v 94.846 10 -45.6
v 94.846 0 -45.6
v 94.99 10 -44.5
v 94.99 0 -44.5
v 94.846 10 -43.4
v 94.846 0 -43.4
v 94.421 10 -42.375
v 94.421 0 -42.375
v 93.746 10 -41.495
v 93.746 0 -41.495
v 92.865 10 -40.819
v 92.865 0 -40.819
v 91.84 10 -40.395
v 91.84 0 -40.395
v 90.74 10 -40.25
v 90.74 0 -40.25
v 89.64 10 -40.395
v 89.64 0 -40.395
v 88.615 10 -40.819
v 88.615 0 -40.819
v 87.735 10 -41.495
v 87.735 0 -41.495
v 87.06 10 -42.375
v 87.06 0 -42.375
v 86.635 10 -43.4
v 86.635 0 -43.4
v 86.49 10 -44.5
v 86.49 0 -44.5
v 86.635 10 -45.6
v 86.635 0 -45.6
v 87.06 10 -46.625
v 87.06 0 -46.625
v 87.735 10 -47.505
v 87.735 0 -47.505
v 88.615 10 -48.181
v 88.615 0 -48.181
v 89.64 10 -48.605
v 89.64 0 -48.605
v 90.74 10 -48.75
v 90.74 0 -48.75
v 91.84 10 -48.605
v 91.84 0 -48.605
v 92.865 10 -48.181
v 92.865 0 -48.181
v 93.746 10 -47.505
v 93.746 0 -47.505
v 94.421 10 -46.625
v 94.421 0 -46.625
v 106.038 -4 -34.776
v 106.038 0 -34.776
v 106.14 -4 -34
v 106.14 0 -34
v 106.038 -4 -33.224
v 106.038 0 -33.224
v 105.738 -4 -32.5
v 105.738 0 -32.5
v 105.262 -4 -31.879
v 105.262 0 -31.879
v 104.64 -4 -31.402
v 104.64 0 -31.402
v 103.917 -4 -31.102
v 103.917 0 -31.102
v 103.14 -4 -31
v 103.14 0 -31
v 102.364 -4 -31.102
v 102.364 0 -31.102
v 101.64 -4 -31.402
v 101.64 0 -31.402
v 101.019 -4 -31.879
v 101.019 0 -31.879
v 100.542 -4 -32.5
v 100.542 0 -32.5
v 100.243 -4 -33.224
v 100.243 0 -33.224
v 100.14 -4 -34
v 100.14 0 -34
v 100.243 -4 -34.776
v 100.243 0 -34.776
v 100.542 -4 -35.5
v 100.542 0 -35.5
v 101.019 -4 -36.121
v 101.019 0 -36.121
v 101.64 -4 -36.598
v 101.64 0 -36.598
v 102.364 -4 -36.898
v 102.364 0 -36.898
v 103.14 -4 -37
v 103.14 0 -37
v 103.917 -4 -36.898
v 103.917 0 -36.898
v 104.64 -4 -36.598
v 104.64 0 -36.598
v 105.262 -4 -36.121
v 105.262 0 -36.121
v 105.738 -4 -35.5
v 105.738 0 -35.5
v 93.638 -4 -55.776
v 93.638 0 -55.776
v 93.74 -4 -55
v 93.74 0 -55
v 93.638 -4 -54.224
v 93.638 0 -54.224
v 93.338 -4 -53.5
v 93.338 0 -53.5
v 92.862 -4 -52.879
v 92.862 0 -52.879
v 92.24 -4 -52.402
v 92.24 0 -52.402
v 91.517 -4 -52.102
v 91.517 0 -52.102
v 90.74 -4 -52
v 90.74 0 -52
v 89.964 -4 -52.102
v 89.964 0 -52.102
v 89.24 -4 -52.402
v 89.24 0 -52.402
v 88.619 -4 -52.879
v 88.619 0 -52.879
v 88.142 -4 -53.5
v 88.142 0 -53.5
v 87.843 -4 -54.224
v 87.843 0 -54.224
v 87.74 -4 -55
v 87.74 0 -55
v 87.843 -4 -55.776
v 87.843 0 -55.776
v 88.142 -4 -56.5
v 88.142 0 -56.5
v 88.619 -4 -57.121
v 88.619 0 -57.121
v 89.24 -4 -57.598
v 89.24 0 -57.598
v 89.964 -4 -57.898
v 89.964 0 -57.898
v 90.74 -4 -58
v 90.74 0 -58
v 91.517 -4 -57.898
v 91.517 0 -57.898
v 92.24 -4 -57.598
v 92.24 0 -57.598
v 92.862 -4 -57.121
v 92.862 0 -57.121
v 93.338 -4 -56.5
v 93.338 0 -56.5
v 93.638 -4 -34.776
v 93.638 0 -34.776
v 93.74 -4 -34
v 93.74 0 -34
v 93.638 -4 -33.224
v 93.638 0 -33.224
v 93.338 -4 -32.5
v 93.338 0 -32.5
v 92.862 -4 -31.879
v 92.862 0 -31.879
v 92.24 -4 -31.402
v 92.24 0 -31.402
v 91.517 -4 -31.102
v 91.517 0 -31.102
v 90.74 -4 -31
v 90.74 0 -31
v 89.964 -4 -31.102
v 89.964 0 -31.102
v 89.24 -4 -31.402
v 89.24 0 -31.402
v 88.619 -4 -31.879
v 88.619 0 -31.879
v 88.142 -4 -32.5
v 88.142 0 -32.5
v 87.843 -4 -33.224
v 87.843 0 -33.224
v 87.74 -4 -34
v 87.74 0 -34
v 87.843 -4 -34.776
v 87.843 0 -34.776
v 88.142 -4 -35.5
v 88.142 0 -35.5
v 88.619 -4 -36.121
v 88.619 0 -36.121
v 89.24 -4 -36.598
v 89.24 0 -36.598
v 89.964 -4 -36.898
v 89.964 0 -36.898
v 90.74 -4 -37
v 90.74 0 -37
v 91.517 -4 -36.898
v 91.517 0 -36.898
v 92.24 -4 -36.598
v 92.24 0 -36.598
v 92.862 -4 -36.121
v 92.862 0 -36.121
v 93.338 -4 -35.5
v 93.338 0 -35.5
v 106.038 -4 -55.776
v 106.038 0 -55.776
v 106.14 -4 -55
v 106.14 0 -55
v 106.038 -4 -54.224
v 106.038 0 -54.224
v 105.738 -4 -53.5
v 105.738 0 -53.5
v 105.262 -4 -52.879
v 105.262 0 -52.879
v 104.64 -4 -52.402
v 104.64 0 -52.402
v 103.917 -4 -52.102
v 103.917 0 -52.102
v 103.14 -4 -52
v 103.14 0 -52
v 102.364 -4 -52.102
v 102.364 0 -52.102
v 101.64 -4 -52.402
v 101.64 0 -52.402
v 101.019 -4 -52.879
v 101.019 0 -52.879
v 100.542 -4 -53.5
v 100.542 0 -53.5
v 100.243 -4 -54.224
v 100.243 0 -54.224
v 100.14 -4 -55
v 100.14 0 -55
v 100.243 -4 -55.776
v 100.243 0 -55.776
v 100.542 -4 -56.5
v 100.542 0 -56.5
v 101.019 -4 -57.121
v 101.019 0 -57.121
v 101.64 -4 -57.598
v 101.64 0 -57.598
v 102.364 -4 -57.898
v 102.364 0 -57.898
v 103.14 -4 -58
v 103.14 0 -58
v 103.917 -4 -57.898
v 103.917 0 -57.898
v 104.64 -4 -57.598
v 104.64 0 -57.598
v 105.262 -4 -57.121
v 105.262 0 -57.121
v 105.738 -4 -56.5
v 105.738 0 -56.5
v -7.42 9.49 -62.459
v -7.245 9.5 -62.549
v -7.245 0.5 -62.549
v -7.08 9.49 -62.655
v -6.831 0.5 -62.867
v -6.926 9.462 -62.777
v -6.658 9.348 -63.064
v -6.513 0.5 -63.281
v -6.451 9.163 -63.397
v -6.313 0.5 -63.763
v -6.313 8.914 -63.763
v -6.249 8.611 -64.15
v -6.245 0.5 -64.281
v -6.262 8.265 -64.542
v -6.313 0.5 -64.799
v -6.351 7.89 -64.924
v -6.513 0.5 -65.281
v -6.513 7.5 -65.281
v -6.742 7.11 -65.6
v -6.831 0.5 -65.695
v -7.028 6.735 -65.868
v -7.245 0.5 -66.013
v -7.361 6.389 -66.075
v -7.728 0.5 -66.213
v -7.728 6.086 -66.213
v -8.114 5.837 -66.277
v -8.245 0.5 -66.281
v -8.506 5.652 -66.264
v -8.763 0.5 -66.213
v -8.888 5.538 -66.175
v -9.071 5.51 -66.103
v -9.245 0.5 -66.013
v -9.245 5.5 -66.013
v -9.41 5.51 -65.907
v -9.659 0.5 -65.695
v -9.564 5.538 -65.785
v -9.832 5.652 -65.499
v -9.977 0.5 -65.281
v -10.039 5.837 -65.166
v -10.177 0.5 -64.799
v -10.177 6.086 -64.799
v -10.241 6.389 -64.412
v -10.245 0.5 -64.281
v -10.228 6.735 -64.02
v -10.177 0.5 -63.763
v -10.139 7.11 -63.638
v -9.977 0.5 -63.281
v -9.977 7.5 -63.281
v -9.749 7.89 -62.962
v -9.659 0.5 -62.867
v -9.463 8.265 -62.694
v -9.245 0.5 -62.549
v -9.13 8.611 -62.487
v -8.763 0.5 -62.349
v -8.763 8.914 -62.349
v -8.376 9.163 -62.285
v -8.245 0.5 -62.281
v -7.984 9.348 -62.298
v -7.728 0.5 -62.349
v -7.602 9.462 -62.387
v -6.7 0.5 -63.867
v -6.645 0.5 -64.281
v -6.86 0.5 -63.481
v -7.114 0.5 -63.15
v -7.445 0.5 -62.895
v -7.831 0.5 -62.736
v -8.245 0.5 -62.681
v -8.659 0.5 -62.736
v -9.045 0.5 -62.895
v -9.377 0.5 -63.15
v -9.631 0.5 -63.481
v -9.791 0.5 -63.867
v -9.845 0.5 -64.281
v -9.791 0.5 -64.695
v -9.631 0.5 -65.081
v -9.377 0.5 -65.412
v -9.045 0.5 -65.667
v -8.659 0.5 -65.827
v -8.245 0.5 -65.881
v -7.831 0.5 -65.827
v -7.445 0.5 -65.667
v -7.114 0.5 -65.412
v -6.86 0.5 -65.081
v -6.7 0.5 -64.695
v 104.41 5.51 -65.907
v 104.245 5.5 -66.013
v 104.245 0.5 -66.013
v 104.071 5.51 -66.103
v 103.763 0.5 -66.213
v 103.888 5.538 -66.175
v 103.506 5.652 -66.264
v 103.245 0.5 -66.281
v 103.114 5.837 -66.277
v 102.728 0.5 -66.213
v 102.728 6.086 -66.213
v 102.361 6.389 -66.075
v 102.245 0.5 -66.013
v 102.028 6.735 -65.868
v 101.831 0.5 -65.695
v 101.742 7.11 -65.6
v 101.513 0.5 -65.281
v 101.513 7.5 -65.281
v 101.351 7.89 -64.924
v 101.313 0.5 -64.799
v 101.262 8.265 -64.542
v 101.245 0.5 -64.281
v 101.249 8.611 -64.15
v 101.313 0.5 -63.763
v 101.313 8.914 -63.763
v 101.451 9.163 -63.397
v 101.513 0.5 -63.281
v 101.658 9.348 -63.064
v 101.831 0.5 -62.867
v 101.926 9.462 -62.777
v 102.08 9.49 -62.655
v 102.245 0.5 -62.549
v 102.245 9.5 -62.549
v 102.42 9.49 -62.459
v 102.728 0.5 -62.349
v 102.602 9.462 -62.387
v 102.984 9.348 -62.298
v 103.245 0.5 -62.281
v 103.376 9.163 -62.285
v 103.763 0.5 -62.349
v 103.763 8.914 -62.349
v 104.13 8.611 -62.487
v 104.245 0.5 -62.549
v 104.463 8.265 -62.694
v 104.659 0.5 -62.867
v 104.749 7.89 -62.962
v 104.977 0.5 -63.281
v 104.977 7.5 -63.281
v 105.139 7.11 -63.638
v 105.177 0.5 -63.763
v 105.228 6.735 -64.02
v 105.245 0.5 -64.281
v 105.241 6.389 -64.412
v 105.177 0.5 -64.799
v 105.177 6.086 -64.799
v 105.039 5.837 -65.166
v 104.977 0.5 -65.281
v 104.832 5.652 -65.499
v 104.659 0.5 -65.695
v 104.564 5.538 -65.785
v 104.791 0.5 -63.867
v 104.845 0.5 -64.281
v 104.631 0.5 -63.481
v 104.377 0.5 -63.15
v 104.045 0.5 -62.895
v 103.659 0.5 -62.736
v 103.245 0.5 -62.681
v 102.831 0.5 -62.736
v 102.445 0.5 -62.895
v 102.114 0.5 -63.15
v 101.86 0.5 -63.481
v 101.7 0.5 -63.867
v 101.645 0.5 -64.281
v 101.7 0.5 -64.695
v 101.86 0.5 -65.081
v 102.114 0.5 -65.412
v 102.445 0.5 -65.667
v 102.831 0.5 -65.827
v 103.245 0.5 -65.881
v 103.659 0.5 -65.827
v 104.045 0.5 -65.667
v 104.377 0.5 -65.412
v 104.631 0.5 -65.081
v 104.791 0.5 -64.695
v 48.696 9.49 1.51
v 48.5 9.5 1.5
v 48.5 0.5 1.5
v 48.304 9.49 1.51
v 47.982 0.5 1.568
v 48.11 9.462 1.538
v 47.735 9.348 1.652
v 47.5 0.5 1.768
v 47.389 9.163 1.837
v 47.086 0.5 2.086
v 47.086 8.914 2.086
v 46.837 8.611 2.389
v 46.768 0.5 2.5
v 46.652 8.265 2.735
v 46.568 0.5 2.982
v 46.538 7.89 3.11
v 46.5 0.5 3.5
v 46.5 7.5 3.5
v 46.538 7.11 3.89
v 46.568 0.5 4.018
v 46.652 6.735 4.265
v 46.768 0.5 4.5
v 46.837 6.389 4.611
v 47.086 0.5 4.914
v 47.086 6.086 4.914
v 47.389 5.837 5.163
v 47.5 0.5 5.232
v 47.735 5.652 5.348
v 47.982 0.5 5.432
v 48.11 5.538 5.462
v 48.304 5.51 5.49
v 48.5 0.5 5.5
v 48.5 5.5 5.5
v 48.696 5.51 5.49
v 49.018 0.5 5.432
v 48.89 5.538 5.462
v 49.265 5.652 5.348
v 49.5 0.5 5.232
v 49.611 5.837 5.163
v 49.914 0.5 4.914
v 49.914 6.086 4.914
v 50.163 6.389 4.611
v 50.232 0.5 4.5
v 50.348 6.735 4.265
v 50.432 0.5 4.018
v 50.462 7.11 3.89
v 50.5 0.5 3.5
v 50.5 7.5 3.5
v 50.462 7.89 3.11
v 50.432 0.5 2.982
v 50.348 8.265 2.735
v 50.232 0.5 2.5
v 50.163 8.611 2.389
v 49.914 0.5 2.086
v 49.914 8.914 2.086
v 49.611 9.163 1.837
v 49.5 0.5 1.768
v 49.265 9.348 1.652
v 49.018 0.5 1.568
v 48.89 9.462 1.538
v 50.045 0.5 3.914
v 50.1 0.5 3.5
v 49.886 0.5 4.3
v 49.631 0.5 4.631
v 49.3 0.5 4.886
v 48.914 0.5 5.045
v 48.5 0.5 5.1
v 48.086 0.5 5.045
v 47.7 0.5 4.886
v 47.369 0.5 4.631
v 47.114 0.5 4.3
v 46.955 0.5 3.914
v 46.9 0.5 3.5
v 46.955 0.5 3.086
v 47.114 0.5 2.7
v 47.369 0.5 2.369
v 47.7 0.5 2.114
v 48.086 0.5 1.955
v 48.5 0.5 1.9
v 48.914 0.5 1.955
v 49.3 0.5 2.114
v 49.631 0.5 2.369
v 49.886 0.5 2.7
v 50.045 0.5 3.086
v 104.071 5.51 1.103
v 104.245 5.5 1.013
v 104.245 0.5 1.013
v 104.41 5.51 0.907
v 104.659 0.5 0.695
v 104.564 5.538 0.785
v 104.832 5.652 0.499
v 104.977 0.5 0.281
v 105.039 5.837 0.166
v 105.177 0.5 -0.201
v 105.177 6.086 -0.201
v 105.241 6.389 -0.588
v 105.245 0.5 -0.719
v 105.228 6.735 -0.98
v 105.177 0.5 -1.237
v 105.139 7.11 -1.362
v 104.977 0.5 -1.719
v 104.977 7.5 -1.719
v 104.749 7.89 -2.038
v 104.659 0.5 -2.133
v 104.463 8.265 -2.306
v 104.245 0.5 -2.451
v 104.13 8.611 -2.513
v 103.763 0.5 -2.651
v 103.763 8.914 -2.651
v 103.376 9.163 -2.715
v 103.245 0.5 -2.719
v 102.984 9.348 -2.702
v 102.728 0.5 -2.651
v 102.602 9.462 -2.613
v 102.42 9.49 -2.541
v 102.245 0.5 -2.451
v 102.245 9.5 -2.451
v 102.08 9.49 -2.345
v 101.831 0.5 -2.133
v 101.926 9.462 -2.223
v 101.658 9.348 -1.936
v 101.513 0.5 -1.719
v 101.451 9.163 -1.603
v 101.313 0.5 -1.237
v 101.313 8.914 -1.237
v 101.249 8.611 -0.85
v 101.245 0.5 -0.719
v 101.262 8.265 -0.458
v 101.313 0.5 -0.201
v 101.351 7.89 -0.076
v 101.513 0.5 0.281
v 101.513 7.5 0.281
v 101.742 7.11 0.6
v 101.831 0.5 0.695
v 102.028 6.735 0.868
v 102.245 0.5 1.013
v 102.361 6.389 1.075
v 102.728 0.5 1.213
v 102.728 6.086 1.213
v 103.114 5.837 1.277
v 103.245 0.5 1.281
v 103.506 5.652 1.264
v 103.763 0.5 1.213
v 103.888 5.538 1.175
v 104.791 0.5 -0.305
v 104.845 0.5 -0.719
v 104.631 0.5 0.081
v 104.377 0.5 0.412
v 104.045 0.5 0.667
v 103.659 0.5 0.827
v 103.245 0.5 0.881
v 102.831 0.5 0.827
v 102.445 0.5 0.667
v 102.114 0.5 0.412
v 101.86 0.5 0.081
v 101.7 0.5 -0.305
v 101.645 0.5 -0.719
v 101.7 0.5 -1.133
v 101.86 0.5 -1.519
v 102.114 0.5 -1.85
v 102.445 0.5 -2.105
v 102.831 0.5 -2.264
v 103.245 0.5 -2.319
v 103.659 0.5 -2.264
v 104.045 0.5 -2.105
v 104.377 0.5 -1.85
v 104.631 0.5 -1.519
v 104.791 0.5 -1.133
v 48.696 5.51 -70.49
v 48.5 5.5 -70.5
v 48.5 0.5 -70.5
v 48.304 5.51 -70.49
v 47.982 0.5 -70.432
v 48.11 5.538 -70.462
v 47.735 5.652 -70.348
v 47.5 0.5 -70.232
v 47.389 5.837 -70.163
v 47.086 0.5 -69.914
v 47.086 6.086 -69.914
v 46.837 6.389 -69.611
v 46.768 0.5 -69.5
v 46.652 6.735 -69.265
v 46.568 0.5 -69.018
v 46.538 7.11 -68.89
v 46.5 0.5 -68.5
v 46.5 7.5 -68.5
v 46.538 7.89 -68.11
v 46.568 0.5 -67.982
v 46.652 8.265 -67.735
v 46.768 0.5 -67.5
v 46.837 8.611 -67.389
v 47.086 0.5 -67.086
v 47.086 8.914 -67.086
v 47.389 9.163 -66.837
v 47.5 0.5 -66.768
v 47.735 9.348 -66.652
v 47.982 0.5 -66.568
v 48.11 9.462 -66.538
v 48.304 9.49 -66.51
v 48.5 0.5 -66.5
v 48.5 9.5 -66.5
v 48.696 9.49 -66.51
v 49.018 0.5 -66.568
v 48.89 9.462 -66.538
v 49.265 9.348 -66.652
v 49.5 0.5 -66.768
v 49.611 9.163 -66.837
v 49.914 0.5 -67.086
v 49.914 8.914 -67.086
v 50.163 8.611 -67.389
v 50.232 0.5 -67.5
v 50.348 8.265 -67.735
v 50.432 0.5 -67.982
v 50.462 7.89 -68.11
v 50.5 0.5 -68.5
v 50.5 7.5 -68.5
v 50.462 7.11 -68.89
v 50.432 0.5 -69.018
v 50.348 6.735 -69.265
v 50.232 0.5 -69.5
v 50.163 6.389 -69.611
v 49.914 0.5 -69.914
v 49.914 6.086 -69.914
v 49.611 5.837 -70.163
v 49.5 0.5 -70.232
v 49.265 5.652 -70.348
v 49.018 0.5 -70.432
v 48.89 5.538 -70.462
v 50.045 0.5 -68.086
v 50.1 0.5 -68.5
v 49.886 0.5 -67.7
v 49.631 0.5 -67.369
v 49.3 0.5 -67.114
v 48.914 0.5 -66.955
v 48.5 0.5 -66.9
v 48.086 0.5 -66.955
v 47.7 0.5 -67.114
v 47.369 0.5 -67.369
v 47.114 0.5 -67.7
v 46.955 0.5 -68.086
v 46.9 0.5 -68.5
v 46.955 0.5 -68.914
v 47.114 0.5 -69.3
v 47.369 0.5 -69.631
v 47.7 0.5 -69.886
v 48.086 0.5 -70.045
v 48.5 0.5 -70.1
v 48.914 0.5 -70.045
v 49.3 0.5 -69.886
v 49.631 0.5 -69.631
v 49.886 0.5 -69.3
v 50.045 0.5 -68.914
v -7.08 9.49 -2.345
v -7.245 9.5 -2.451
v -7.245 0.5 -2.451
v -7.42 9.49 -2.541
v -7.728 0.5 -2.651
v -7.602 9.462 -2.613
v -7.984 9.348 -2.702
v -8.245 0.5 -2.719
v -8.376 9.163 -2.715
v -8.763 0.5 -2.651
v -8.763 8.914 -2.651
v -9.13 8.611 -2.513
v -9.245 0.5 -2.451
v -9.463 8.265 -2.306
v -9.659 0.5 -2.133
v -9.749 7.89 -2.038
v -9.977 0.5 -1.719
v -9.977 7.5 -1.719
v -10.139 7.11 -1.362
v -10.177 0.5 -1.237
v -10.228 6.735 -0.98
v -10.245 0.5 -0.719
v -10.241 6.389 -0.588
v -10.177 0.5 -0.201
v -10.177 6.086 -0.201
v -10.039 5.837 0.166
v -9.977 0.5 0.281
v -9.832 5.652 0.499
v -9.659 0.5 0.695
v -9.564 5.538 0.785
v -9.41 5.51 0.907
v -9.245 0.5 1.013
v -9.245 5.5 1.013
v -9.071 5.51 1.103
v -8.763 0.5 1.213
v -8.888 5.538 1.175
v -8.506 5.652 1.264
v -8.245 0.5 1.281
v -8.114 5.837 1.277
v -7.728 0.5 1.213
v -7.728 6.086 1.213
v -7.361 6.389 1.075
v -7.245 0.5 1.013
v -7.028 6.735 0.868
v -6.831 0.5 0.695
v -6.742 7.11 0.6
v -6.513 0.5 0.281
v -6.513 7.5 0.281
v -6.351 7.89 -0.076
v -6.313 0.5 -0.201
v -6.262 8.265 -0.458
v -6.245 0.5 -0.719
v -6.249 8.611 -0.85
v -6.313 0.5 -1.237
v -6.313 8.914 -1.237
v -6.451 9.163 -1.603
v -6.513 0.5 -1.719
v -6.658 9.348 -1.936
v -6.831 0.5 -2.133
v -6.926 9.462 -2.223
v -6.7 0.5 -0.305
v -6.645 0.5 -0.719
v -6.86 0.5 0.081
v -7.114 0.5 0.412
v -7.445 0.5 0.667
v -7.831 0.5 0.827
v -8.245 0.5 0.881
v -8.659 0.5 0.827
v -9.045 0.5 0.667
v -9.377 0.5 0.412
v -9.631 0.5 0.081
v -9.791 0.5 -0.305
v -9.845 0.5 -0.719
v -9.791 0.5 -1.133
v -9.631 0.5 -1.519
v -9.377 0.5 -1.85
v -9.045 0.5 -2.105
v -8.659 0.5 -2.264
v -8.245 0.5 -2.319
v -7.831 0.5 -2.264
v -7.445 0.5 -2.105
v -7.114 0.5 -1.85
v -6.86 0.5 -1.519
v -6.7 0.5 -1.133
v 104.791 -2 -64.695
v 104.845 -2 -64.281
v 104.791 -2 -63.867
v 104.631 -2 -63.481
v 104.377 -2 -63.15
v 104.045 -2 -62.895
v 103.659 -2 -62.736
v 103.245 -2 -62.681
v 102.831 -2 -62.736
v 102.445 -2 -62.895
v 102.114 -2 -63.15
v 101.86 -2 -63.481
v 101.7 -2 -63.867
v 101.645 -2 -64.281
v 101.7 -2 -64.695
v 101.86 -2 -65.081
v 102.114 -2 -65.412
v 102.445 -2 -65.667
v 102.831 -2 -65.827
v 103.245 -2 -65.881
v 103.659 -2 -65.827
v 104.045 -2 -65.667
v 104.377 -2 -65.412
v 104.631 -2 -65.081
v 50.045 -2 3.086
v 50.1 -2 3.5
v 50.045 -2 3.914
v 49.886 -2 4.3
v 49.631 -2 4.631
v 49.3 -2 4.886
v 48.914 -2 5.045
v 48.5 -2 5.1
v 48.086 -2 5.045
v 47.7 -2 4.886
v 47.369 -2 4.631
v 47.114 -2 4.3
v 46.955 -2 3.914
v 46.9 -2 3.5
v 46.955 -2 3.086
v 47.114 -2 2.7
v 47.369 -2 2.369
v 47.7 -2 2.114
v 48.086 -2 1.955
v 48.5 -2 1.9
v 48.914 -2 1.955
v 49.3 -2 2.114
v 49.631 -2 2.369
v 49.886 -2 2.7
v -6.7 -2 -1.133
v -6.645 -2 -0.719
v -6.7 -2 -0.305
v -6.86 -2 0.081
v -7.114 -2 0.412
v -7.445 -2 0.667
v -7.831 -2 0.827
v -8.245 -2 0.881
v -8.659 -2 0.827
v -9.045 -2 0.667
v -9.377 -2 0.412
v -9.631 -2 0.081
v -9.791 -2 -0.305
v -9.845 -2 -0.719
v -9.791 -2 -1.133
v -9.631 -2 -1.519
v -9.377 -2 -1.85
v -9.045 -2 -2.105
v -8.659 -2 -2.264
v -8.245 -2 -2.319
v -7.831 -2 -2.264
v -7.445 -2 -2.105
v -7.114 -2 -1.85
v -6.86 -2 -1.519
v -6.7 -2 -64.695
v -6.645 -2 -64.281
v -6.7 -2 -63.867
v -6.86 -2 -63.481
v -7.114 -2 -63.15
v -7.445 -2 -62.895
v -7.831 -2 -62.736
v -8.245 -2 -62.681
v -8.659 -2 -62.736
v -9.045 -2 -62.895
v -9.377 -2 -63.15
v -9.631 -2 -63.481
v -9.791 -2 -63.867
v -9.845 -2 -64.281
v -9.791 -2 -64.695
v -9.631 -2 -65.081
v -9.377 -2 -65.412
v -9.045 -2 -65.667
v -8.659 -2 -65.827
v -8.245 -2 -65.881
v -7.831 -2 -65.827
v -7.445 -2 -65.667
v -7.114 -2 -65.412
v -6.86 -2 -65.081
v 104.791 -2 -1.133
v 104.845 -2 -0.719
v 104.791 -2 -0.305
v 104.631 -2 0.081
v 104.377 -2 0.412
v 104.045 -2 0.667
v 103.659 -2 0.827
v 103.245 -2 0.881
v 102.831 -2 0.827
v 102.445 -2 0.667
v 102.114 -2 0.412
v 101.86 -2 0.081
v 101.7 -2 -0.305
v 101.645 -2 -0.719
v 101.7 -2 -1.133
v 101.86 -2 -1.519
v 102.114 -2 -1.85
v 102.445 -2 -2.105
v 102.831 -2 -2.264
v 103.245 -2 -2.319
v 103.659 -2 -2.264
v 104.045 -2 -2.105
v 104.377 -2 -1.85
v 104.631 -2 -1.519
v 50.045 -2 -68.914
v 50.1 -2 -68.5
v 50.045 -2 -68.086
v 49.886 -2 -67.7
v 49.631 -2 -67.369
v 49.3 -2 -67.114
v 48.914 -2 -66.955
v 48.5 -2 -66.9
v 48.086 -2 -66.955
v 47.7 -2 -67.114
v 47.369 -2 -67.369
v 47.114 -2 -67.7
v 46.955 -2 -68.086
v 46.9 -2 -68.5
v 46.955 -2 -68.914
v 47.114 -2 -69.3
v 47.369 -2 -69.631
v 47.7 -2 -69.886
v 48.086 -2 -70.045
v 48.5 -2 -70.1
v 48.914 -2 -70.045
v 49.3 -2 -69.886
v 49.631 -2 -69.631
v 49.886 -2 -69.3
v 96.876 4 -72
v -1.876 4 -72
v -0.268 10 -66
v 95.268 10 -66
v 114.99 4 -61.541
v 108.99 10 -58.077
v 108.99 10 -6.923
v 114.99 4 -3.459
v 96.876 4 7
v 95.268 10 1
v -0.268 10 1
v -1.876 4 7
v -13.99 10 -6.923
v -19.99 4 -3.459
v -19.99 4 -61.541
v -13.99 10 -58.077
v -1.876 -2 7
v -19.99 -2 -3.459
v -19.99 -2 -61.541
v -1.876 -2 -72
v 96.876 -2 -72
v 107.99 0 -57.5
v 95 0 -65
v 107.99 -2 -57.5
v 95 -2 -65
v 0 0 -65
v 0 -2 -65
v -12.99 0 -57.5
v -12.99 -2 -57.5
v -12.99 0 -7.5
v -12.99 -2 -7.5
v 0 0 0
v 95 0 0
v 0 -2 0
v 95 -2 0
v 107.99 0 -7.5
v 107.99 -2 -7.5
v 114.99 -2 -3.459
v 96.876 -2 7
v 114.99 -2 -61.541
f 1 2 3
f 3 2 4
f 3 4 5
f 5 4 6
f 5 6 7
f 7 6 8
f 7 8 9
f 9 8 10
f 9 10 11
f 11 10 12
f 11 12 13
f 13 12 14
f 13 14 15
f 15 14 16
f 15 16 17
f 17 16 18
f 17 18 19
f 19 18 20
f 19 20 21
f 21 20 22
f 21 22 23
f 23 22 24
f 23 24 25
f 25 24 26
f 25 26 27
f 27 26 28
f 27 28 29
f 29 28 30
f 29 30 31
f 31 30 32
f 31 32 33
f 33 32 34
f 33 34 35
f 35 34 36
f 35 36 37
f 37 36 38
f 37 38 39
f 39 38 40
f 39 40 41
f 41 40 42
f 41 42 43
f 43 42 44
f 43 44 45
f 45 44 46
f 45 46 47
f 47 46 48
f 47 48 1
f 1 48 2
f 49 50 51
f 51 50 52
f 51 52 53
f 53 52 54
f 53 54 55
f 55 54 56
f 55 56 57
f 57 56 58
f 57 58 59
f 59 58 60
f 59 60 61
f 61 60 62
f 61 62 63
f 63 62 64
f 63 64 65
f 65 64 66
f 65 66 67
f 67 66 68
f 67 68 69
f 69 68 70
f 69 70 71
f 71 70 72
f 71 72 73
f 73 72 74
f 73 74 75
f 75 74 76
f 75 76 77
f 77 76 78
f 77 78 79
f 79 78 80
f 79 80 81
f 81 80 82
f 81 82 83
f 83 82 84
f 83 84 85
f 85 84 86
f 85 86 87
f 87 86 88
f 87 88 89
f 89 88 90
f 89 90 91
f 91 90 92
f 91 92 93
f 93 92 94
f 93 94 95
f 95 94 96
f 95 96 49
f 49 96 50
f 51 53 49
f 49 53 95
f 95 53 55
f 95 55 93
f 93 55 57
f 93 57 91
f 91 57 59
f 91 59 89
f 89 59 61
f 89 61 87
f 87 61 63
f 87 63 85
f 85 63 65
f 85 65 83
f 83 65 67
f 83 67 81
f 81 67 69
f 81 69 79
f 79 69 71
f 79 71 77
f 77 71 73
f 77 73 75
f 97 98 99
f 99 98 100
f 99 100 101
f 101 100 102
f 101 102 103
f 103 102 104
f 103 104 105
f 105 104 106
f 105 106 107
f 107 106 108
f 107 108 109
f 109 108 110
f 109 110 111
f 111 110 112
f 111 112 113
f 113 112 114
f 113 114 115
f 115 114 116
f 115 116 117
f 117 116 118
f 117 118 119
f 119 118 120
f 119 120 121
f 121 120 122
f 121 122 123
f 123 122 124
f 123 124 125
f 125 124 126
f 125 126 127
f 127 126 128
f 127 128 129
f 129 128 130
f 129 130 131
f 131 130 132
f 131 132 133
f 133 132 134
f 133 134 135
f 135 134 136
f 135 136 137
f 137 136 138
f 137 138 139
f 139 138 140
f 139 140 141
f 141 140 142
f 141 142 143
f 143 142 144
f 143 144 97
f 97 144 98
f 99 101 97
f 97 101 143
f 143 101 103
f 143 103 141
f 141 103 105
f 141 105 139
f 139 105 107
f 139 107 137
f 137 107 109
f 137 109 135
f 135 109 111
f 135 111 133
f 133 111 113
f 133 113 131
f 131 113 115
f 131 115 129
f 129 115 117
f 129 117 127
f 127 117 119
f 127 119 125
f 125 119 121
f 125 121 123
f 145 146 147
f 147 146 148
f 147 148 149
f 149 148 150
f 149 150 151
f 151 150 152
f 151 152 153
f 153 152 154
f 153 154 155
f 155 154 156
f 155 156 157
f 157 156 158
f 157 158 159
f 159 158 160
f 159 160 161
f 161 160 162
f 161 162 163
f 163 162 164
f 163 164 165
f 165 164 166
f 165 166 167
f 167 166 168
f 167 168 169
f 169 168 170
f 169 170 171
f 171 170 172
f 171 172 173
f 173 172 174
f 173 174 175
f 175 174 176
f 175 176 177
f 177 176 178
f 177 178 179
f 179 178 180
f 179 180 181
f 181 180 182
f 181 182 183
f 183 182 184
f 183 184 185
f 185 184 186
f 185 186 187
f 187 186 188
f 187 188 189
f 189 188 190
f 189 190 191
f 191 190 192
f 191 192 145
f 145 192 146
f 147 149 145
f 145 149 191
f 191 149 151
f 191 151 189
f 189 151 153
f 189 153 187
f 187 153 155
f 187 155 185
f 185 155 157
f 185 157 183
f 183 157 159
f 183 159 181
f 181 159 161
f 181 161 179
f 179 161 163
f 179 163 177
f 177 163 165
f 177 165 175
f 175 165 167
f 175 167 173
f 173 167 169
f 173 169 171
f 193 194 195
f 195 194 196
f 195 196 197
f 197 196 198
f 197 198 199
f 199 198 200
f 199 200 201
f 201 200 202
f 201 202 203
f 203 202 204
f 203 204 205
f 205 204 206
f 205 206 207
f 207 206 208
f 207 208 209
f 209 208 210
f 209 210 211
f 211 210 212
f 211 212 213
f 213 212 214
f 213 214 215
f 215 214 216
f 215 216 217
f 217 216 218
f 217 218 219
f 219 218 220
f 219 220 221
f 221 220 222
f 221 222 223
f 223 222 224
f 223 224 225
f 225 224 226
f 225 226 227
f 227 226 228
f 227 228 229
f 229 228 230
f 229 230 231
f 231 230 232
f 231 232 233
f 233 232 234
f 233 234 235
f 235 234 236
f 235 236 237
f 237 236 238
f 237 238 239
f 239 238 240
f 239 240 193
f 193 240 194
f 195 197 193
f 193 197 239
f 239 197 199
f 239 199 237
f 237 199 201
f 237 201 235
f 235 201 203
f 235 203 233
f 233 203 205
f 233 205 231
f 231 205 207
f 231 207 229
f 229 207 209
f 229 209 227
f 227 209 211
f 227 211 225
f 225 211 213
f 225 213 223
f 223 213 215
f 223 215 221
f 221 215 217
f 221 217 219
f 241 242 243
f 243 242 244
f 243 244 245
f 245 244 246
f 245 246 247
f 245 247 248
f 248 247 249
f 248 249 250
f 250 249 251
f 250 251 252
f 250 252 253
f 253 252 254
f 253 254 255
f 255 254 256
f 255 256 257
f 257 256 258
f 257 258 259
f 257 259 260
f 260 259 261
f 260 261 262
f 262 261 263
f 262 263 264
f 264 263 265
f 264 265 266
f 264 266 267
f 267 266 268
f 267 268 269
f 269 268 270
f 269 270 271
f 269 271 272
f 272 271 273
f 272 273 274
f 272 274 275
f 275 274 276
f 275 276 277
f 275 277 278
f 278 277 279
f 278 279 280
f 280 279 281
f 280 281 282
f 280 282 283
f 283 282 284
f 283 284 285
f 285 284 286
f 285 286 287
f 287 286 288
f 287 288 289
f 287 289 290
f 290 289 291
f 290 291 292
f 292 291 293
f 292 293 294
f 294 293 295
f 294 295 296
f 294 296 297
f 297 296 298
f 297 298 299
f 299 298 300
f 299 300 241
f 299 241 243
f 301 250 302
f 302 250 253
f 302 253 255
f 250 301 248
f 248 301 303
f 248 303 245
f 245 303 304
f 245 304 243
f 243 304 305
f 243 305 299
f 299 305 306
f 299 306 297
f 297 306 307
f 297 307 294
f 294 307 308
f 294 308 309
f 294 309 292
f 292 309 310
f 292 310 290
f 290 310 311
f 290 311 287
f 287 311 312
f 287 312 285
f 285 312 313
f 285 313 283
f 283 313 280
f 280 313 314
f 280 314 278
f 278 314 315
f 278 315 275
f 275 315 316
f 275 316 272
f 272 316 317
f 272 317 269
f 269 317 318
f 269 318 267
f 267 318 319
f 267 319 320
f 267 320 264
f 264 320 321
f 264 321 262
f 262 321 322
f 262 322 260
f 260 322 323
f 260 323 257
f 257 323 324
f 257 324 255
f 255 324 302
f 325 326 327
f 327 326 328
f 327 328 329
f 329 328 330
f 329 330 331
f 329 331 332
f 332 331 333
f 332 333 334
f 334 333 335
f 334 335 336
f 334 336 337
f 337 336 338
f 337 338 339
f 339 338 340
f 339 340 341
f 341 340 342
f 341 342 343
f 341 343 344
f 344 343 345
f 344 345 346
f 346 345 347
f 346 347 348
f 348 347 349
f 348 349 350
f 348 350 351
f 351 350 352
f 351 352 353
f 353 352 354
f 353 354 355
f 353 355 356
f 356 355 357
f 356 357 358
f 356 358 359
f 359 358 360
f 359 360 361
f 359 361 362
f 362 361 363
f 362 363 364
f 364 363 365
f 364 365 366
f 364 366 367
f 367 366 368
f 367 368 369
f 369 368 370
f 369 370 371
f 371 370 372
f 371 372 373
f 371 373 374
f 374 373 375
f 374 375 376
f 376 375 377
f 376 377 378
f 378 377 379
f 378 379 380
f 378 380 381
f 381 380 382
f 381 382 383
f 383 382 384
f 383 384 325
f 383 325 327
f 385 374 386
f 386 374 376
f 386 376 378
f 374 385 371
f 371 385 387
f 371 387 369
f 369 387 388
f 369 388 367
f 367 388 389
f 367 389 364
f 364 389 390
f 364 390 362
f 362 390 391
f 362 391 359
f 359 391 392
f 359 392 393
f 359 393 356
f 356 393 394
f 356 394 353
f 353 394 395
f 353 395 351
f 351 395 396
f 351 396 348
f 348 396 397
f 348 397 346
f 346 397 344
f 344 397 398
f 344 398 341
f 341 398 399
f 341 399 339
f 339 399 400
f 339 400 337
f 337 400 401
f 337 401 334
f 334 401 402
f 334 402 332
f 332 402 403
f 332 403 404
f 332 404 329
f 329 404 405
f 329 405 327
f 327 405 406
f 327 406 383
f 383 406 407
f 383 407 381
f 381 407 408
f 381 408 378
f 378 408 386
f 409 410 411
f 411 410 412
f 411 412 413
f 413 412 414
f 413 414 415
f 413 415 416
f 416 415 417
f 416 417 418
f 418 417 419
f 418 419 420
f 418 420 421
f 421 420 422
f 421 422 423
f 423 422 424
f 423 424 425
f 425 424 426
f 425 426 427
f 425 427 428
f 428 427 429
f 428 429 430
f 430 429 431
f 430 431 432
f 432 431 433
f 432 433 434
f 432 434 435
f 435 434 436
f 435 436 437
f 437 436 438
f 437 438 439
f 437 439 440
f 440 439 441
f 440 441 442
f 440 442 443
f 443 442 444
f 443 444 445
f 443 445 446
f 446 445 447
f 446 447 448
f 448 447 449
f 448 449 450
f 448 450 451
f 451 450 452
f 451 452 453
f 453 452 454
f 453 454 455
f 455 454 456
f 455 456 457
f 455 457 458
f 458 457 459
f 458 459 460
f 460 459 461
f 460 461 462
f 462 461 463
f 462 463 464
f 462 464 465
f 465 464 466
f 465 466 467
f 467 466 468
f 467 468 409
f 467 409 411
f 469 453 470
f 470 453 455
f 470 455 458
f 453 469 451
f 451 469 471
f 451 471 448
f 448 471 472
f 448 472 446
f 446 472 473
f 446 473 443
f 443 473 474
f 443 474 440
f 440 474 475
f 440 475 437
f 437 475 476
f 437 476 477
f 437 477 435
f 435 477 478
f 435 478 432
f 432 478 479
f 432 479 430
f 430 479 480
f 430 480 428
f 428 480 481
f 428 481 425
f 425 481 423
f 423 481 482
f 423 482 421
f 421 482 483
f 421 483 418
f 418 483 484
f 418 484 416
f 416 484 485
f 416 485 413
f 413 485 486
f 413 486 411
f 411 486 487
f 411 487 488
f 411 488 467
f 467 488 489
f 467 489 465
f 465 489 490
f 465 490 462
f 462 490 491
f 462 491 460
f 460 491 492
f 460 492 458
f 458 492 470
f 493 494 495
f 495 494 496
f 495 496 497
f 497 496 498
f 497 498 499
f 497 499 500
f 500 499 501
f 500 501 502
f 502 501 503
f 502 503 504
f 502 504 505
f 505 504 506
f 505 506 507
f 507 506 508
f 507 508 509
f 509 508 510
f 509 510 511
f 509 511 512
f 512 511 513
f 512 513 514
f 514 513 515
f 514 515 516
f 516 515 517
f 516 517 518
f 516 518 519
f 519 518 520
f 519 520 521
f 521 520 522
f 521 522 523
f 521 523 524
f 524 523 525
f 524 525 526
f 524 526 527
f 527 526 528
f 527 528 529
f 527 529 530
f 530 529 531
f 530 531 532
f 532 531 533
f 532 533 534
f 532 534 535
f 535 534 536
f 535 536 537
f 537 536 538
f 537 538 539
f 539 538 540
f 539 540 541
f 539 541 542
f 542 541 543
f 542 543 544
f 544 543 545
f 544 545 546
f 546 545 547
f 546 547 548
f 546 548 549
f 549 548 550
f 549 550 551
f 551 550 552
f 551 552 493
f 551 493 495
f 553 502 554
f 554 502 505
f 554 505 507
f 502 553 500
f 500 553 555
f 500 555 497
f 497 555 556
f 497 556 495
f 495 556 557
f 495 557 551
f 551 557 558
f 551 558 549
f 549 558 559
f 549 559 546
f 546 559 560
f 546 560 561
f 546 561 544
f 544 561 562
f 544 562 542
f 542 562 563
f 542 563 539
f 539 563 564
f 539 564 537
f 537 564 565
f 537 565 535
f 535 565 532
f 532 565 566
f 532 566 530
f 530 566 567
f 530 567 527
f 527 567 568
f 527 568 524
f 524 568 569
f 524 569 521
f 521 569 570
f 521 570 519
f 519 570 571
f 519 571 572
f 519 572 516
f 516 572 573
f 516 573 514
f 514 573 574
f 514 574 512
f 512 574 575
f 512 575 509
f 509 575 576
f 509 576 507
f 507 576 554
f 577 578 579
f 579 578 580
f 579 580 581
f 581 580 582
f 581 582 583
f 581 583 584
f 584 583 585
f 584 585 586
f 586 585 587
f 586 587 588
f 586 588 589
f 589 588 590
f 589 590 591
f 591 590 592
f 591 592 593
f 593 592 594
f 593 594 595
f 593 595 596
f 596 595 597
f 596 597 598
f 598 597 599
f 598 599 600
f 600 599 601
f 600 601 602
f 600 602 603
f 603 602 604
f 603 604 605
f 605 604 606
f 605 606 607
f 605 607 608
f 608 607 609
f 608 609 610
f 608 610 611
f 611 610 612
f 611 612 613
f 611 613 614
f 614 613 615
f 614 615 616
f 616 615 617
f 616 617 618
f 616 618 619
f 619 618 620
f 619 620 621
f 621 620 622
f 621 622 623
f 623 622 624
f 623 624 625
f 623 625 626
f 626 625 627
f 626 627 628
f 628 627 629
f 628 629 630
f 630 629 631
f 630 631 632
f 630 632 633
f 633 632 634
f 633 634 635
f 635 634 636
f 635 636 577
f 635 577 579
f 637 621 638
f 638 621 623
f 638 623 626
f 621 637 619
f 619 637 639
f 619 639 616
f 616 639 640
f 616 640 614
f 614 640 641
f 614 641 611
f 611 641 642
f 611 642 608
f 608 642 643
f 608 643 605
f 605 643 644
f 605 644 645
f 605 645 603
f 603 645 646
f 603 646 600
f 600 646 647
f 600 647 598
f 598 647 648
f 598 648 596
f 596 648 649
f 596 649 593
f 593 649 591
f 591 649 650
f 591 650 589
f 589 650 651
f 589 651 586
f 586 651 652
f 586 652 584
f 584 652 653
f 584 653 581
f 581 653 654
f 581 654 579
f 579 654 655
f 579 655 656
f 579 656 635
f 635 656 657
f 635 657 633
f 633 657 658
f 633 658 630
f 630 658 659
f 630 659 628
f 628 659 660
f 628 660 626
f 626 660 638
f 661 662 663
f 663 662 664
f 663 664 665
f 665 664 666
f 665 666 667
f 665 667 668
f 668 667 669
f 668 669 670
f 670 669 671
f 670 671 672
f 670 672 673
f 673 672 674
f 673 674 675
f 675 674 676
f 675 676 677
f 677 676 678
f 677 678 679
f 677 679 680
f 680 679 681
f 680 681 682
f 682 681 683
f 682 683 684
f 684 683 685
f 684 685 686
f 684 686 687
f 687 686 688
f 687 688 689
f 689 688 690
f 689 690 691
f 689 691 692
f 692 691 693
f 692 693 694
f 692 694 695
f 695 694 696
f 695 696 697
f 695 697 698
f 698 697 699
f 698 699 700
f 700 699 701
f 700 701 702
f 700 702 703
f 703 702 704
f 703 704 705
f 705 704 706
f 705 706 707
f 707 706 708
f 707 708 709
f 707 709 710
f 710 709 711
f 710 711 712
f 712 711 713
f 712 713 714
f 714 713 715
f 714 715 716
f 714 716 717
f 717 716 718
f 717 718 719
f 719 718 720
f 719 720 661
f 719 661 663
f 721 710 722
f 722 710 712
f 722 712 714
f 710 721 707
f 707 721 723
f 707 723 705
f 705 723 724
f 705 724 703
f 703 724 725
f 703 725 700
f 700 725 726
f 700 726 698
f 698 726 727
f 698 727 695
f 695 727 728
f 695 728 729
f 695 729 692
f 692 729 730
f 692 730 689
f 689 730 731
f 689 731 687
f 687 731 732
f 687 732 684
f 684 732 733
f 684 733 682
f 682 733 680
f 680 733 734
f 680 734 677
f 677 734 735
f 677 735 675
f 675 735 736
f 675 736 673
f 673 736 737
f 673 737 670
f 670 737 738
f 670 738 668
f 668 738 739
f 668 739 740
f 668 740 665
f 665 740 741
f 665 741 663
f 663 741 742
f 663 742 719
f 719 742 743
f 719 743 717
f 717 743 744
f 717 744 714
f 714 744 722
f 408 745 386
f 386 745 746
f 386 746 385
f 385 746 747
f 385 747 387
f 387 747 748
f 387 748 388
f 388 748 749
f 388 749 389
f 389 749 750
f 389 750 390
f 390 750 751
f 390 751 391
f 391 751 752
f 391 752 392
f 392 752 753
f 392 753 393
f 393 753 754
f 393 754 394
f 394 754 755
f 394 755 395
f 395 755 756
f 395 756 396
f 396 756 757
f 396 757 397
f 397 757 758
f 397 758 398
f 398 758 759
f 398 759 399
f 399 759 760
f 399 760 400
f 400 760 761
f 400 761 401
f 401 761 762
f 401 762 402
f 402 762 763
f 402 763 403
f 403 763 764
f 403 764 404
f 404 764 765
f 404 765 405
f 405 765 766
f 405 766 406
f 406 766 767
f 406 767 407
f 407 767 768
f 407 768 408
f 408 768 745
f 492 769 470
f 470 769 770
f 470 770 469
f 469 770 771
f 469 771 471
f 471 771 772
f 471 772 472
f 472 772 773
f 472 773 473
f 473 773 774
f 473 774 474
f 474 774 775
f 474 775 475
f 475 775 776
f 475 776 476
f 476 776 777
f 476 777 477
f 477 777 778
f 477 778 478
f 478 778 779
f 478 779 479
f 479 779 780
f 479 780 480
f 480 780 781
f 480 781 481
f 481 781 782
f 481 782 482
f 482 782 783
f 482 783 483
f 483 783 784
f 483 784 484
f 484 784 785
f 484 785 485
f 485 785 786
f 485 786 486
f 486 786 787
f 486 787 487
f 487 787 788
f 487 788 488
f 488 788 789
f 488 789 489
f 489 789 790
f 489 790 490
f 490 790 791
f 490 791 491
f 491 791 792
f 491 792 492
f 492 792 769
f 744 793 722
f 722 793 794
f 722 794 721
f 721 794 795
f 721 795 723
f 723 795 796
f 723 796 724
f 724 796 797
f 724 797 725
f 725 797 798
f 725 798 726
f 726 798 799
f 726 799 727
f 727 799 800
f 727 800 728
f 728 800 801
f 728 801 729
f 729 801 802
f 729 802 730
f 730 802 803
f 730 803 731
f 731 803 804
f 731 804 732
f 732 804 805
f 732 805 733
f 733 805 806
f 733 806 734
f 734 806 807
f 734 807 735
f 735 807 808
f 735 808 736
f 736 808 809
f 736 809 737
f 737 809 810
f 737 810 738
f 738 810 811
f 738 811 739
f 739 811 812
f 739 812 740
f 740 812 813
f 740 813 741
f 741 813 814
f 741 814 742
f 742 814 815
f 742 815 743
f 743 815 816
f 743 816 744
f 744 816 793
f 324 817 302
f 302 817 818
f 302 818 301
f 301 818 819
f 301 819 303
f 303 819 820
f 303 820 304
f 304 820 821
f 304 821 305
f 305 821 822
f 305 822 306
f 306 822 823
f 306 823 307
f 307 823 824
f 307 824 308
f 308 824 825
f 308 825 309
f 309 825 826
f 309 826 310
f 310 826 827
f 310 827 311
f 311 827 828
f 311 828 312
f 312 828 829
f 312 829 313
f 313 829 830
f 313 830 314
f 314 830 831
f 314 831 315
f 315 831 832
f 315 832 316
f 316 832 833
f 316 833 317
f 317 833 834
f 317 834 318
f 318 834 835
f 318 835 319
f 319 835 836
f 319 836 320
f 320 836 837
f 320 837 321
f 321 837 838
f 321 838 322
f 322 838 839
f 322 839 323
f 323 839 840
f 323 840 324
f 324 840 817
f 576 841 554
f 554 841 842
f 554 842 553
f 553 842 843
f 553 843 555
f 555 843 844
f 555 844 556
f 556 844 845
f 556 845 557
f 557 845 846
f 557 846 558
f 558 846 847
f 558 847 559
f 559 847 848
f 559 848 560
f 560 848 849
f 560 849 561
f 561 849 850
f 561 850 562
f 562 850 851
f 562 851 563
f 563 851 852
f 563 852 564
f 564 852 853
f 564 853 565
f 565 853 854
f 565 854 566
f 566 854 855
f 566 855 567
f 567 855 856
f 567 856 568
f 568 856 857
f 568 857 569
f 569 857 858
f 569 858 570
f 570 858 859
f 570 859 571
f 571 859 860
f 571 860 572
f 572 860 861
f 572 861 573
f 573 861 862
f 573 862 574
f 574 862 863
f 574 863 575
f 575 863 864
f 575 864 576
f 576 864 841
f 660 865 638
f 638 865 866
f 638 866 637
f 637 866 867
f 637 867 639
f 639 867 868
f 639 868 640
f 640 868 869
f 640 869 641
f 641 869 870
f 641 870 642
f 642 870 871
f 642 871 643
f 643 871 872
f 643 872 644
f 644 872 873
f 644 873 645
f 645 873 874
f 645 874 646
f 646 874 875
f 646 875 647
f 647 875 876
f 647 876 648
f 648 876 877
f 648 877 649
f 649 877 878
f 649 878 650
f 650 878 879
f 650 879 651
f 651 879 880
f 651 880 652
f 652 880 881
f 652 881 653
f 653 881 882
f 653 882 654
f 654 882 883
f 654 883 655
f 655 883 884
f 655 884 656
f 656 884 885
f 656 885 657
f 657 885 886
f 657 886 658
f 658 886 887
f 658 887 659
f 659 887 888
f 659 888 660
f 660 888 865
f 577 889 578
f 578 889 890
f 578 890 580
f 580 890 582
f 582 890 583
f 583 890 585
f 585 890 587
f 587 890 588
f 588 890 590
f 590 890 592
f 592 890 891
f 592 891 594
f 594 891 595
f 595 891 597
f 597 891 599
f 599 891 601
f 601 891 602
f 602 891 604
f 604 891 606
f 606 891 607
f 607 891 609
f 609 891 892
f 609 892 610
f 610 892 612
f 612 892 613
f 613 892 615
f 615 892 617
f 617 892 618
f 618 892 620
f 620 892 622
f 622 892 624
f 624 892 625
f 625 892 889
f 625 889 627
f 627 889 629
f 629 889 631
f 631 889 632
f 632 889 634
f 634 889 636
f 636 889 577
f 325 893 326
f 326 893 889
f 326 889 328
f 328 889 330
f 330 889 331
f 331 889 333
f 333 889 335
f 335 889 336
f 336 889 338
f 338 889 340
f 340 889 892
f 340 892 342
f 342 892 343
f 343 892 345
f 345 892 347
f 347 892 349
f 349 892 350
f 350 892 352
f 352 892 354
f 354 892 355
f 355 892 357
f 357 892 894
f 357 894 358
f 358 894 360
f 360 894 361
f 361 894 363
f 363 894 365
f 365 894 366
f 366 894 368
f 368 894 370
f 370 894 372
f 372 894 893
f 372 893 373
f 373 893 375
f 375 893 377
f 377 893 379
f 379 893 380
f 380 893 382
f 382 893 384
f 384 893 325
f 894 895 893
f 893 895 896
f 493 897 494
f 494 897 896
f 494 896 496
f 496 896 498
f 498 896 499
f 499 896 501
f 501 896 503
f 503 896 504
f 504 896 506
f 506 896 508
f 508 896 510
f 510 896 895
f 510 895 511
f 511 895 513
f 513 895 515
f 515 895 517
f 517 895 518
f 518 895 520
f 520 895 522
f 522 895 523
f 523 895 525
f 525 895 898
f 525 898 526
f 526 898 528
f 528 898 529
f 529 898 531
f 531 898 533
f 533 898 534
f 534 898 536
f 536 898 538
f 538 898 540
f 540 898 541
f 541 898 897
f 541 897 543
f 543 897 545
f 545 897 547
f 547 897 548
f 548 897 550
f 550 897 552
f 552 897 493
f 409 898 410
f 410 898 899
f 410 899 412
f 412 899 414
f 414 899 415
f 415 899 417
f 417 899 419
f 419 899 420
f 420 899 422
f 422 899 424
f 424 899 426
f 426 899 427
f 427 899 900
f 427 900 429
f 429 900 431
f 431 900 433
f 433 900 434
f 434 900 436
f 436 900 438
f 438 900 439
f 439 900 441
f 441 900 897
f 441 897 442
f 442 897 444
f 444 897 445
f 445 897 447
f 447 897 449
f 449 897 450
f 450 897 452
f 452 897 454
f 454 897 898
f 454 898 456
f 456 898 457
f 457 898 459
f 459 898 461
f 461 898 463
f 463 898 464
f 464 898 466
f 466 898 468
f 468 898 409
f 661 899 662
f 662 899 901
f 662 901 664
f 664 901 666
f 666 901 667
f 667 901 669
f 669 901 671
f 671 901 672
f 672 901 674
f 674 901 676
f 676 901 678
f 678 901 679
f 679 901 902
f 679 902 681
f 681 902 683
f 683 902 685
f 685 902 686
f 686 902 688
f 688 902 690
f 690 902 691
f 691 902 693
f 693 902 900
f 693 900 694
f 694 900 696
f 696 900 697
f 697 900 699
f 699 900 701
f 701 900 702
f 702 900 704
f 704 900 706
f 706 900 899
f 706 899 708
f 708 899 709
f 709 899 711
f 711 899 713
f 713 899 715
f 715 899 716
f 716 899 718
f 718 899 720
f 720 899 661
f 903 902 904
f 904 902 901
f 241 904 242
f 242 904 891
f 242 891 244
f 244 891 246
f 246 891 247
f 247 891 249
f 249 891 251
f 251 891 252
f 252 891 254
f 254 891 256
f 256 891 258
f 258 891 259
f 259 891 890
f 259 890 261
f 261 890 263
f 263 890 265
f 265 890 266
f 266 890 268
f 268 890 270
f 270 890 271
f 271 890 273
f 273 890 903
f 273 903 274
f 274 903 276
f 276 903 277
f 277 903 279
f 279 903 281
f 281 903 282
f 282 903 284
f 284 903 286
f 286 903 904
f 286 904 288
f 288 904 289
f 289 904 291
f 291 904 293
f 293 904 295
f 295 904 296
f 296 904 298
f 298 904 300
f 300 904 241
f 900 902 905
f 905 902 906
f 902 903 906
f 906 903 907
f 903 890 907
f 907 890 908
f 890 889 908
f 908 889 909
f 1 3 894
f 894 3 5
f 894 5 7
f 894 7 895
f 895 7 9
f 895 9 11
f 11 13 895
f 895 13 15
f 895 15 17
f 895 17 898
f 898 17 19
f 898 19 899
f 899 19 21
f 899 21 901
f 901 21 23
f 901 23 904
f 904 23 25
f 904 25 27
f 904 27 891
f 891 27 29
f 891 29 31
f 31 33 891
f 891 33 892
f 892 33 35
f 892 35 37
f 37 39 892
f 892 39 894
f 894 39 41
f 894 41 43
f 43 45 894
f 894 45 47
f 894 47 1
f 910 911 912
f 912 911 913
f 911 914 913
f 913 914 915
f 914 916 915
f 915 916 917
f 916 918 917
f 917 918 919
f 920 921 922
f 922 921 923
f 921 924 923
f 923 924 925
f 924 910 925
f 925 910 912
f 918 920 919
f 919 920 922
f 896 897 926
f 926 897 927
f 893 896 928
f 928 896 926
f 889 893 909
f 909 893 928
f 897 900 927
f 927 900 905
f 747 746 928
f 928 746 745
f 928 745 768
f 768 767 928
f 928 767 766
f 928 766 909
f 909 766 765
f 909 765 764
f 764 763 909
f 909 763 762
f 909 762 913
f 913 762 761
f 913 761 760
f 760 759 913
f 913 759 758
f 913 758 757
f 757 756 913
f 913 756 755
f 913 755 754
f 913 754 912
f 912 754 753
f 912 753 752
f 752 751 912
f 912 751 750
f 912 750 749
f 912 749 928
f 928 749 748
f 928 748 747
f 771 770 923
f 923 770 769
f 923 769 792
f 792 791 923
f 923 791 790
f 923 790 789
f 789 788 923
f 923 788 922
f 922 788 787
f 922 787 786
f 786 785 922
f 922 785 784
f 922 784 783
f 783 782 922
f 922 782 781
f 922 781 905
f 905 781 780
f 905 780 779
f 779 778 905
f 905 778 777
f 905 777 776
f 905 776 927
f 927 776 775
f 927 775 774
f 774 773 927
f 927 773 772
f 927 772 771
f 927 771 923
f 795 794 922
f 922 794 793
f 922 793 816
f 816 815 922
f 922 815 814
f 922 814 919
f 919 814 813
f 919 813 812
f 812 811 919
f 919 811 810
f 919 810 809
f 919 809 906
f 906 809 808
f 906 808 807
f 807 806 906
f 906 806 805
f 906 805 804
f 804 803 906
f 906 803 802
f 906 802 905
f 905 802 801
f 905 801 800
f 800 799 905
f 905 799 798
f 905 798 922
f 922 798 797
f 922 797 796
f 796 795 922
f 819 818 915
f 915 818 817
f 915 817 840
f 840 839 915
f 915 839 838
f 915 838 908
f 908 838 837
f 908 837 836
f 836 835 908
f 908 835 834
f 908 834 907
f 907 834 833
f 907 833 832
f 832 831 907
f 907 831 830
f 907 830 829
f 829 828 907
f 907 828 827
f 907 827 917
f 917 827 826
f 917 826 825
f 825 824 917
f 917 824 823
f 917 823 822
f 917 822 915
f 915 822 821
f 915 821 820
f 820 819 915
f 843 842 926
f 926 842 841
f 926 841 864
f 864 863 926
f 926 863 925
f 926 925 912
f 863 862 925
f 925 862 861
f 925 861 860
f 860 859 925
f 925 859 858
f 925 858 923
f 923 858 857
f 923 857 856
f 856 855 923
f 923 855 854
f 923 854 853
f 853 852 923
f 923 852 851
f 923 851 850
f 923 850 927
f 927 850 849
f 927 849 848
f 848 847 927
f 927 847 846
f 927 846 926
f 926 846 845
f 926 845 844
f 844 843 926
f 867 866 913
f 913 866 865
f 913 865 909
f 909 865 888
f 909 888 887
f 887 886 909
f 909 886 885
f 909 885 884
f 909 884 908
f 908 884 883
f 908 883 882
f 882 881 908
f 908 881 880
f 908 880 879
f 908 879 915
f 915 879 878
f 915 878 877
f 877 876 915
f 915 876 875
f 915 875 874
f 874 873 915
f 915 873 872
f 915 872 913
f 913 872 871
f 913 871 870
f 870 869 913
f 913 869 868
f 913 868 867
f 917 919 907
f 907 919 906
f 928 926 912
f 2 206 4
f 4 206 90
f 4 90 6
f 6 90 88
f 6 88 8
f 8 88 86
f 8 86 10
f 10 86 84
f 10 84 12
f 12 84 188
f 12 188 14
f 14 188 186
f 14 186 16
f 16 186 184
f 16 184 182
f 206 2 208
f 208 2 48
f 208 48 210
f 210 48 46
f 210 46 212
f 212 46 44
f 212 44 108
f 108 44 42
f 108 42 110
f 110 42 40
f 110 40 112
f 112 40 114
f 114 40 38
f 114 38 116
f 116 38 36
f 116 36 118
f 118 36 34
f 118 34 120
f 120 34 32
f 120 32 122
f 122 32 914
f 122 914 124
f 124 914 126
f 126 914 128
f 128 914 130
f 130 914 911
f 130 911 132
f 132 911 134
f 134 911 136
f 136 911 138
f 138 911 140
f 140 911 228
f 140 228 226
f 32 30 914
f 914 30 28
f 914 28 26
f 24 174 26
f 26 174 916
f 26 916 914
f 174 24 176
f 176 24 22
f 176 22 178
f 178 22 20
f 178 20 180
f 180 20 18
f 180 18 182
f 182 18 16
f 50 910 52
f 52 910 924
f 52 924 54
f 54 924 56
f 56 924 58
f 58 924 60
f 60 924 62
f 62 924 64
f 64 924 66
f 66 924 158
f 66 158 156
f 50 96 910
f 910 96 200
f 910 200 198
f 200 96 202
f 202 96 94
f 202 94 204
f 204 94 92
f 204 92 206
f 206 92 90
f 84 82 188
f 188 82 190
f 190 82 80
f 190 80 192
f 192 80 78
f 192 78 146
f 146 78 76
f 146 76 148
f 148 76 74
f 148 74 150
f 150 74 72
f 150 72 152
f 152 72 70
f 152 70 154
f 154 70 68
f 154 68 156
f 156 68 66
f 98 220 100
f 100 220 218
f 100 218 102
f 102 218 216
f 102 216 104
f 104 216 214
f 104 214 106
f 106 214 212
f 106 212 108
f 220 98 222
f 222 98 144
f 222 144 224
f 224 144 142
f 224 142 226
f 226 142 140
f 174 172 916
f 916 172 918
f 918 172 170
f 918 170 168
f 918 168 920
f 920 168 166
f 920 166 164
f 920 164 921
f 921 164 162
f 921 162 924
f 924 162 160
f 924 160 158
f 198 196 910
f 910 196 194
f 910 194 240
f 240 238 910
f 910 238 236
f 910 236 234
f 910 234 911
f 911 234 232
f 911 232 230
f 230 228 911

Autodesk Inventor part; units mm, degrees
ref_plane "YZ Plane" through (0, 0, 0) normal (1, 0, 0) x (0, 1, 0)
ref_plane "XZ Plane" through (0, 0, 0) normal (0, 1, 0) x (-1, 0, 0)
ref_plane "XY Plane" through (0, 0, 0) normal (0, 0, 1) x (1, 0, 0)
sketch "Sketch5" plane through (0, 0, 0) normal (0, 1, 0) x (-1, 0, 0)
  line L0 (0, 0) -> (-95, 0)
  line L1 (-95, 0) -> (-95, -65)
  line L2 (-95, -65) -> (0, -65)
  line L3 (0, -65) -> (0, 0)
  line L4 (0, -65) -> (12.9904, -57.5)
  line L5 (12.9904, -57.5) -> (12.9904, -7.5)
  line L6 (12.9904, -7.5) -> (0, 0)
  line L7 (-95, -65) -> (-107.9904, -57.5)
  line L8 (-107.9904, -57.5) -> (-107.9904, -7.5)
  line L9 (-107.9904, -7.5) -> (-95, 0)
  dimension "d23" = 95
  dimension "d24" = 65
  dimension "d25" = 15
  dimension "d26" = 15
  dimension "d27" = 120
  dimension "d28" = 15
  dimension "d29" = 15
  dimension "d30" = 120
extrude "Extrusion3" add sketch "Sketch5" along normal blind 10
sketch "Sketch6" plane through (0, 0, 0) normal (0, -1, 0) x (1, 0, 0)
  line L0 (0, 7) -> (87, 7)
  line L1 (95, -72) -> (8, -72)
  line L2 (0, 0) -> (95, 0) projected
  line L3 (95, -65) -> (0, -65) projected
  line L4 (96.8756, 7) -> (114.9904, -3.4585)
  line L5 (95, 0) -> (107.9904, -7.5) projected
  line L6 (114.9904, -3.4585) -> (114.9904, -61.5415)
  line L7 (107.9904, -7.5) -> (107.9904, -57.5) projected
  line L8 (96.8756, -72) -> (114.9904, -61.5415)
  line L9 (107.9904, -57.5) -> (95, -65) projected
  line L10 (107.9904, -57.5) -> (95, -65) projected
  line L11 (87, 7) -> (96.8756, 7)
  line L12 (95, -72) -> (96.8756, -72)
  line L13 (0, 7) -> (-1.8756, 7)
  line L14 (-19.9904, -3.4585) -> (-1.8756, 7)
  line L15 (-19.9904, -61.5415) -> (-2.8038, -71.4641)
  line L16 (0, -65) -> (-12.9904, -57.5) projected
  line L17 (-12.9904, -7.5) -> (0, 0) projected
  line L18 (-19.9904, -61.5415) -> (-19.9904, -3.4585)
  line L19 (-12.9904, -57.5) -> (-12.9904, -7.5) projected
  line L20 (0, -65) -> (-12.9904, -57.5) projected
  line L21 (-12.9904, -7.5) -> (-12.9904, -57.5)
  line L22 (-12.9904, -57.5) -> (0, -65)
  line L23 (95, -65) -> (0, -65) projected
  line L24 (0, -65) -> (95, -65)
  line L25 (95, -65) -> (107.9904, -57.5)
  line L26 (107.9904, -7.5) -> (107.9904, -57.5)
  line L27 (95, 0) -> (107.9904, -7.5) projected
  line L28 (107.9904, -7.5) -> (95, 0)
  line L29 (0, 0) -> (-12.9904, -7.5)
  line L30 (95, 0) -> (0, 0)
  line L31 (8, -72) -> (-1.8756, -72)
  line L32 (-2.8038, -71.4641) -> (-1.8756, -72)
  dimension "d33" = 7
  dimension "d34" = 7
  dimension "d35" = 7
  dimension "d36" = 7
  dimension "d37" = 7
  dimension "d38" = 7
  dimension "d39" = 7
  dimension "d40" = 7
extrude "Extrusion4" add sketch "Sketch6" along normal blind 2 and the other way blind 10
chamfer "Chamfer1" distance 6 angle 45 8 edges at (47.5, 10, 7) (-10.933, 10, 1.7707) (-19.9904, 10, -32.5) (-10.933, 10, -66.7707) (47.5, 10, -72) (105.933, 10, -66.7707) (114.9904, 10, -32.5) (105.933, 10, 1.7707)
sketch "Sketch7" plane through (0, 0, 0) normal (0, -1, 0) x (1, 0, 0)
  line L0 (86.4904, -40.25) -> (94.9904, -40.25)
  line L1 (94.9904, -40.25) -> (94.9904, -48.75)
  line L2 (94.9904, -48.75) -> (86.4904, -48.75)
  line L3 (86.4904, -48.75) -> (86.4904, -40.25)
  line L4 (96.8756, 7) -> (-1.8756, 7) projected
  line L5 (114.9904, -61.5415) -> (114.9904, -3.4585) projected
  circle A0 centre (90.7404, -55) radius 3
  circle A1 centre (90.7404, -34) radius 3
  circle A2 centre (103.1404, -34) radius 3
  circle A3 centre (103.1404, -55) radius 3
  circle A4 centre (90.7404, -44.5) radius 4.25
  circle A5 centre (46.5, 2.8174) radius 1.834
  circle A6 centre (46.5, -64.297) radius 1.834
  line L6 (-1.8756, -72) -> (96.8756, -72) projected
  point P0 (0, 0)
  dimension "d48" = 8.5
  dimension "d50" = 20
  dimension "d51" = 6.25
  dimension "d52" = 8.15
  dimension "d53" = 12.4
  dimension "d54" = 0
  dimension "d55" = 21
  dimension "d56" = 12.4
  dimension "d57" = 0
  dimension "d58" = 0
  dimension "d59" = 6
  dimension "d61" = 8.5
  dimension "d107" = 27.5
sketch "Sketch9" plane through (0, -2, 0) normal (0, -1, 0) x (1, 0, 0)
  circle A0 centre (-8.2452, -0.7189) radius 1.6
  line L0 (0, -65) -> (-12.9904, -57.5) projected
  line L1 (0, -65) -> (-1.8756, -72) projected
  line L2 (95, -65) -> (0, -65) projected
  line L3 (107.9904, -7.5) -> (107.9904, -57.5) projected
  line L4 (0, 0) -> (95, 0) projected
  line L5 (-12.9904, -7.5) -> (-16.4904, -1.4378)
  line L6 (-19.9904, -3.4585) -> (-1.8756, 7) projected
  line L7 (0, 0) -> (-3.5, 6.0622)
  line L8 (-12.9904, -57.5) -> (-19.9904, -61.5415) projected
  line L9 (-12.9904, -57.5) -> (-15.4904, -61.8301)
  line L10 (0, -65) -> (-2.5, -69.3301)
  line L11 (95, -65) -> (97.5, -69.3301)
  line L12 (95, 0) -> (98.5, 6.0622)
  line L13 (96.8756, 7) -> (114.9904, -3.4585) projected
  line L14 (107.9904, -7.5) -> (114.9904, -3.4585) projected
  line L15 (107.9904, -7.5) -> (111.4904, -1.4378)
  line L16 (107.9904, -57.5) -> (111.4904, -63.5622)
  line L17 (96.8756, -72) -> (114.9904, -61.5415) projected
  line L18 (107.9904, -57.5) -> (95, -65) projected
  line L19 (95, 0) -> (107.9904, -7.5) projected
  circle A1 centre (-8.2452, -64.2811) radius 1.6
  circle A2 centre (103.2452, -64.2811) radius 1.6
  circle A3 centre (103.2452, -0.7189) radius 1.6
  circle A4 centre (48.5, 3.5) radius 1.6
  circle A5 centre (48.5, -68.5) radius 1.6
  line L20 (95, -65) -> (95, -72)
  line L21 (-1.8756, -72) -> (96.8756, -72) projected
  line L22 (95, 0) -> (95, 7)
  line L23 (96.8756, 7) -> (-1.8756, 7) projected
  dimension "d62" = 90
  dimension "d63" = 90
  dimension "d64" = 90
  dimension "d65" = 7.5
  dimension "d66" = 3.5
  dimension "d67" = 3.2
  dimension "d68" = 7.5
  dimension "d69" = 3.5
  dimension "d70" = 3.5
  dimension "d71" = 7.5
  dimension "d72" = 7.5
  dimension "d73" = 3.5
  dimension "d76" = 3.5
  dimension "d77" = 46.5
  dimension "d78" = 3.5
  dimension "d79" = 46.5
extrude "Extrusion6" cut sketch "Sketch9" against normal blind 2.5 contours A0 | A1 | A2 | A3 | A4 | A5
sketch "Sketch13" plane through (48.5, 0.5, 3.5) normal (0, -1, 0) x (1, 0, 0)
  circle A0 centre (0, 0) radius 2
  circle A1 centre (54.7452, -4.2189) radius 2
  circle A2 centre (54.7452, -67.7811) radius 2
  circle A3 centre (0, -72) radius 2
  circle A4 centre (-56.7452, -67.7811) radius 2
  circle A5 centre (-56.7452, -4.2189) radius 2
  circle A6 centre (-56.7452, -4.2189) radius 1.6 projected
  circle A7 centre (0, 0) radius 1.6 projected
  circle A8 centre (54.7452, -4.2189) radius 1.6 projected
  circle A9 centre (54.7452, -67.7811) radius 1.6 projected
  circle A10 centre (0, -72) radius 1.6 projected
  circle A11 centre (-56.7452, -67.7811) radius 1.6 projected
  point P0 (-48.5, -3.5)
  dimension "d90" = 4
  dimension "d91" = 4
  dimension "d92" = 4
  dimension "d93" = 4
  dimension "d94" = 4
  dimension "d95" = 4
extrude "Extrusion7" cut sketch "Sketch13" against normal blind 10 contours A0 | A1 | A2 | A3 | A4 | A5 | A6 | A7 | A8 | A9 | A10 | A11
extrude "Extrusion8" add sketch "Sketch7" along normal blind 4 contours A0 | A1 | A2 | A3
sketch "Sketch14" plane through (0, 0, 0) normal (0, -1, 0) x (1, 0, 0)
  line L0 (86.4904, -48.75) -> (94.9904, -48.75)
  line L1 (94.9904, -48.75) -> (94.9904, -40.25)
  line L2 (94.9904, -40.25) -> (86.4904, -40.25)
  line L3 (86.4904, -40.25) -> (86.4904, -48.75)
  line L4 (95, -65) -> (0, -65) projected
  line L5 (107.9904, -7.5) -> (107.9904, -57.5) projected
  circle A0 centre (90.7404, -44.5) radius 4.25
  circle A1 centre (90.7404, -55) radius 3 projected
  point P0 (0, 0)
  dimension "d100" = 8.5
  dimension "d101" = 8.5
  dimension "d103" = 13
  dimension "d104" = 8.5
  dimension "d108" = 9.25
extrude "Extrusion9" cut sketch "Sketch14" against normal blind 10 contours A0
properties part number "Topv3"
